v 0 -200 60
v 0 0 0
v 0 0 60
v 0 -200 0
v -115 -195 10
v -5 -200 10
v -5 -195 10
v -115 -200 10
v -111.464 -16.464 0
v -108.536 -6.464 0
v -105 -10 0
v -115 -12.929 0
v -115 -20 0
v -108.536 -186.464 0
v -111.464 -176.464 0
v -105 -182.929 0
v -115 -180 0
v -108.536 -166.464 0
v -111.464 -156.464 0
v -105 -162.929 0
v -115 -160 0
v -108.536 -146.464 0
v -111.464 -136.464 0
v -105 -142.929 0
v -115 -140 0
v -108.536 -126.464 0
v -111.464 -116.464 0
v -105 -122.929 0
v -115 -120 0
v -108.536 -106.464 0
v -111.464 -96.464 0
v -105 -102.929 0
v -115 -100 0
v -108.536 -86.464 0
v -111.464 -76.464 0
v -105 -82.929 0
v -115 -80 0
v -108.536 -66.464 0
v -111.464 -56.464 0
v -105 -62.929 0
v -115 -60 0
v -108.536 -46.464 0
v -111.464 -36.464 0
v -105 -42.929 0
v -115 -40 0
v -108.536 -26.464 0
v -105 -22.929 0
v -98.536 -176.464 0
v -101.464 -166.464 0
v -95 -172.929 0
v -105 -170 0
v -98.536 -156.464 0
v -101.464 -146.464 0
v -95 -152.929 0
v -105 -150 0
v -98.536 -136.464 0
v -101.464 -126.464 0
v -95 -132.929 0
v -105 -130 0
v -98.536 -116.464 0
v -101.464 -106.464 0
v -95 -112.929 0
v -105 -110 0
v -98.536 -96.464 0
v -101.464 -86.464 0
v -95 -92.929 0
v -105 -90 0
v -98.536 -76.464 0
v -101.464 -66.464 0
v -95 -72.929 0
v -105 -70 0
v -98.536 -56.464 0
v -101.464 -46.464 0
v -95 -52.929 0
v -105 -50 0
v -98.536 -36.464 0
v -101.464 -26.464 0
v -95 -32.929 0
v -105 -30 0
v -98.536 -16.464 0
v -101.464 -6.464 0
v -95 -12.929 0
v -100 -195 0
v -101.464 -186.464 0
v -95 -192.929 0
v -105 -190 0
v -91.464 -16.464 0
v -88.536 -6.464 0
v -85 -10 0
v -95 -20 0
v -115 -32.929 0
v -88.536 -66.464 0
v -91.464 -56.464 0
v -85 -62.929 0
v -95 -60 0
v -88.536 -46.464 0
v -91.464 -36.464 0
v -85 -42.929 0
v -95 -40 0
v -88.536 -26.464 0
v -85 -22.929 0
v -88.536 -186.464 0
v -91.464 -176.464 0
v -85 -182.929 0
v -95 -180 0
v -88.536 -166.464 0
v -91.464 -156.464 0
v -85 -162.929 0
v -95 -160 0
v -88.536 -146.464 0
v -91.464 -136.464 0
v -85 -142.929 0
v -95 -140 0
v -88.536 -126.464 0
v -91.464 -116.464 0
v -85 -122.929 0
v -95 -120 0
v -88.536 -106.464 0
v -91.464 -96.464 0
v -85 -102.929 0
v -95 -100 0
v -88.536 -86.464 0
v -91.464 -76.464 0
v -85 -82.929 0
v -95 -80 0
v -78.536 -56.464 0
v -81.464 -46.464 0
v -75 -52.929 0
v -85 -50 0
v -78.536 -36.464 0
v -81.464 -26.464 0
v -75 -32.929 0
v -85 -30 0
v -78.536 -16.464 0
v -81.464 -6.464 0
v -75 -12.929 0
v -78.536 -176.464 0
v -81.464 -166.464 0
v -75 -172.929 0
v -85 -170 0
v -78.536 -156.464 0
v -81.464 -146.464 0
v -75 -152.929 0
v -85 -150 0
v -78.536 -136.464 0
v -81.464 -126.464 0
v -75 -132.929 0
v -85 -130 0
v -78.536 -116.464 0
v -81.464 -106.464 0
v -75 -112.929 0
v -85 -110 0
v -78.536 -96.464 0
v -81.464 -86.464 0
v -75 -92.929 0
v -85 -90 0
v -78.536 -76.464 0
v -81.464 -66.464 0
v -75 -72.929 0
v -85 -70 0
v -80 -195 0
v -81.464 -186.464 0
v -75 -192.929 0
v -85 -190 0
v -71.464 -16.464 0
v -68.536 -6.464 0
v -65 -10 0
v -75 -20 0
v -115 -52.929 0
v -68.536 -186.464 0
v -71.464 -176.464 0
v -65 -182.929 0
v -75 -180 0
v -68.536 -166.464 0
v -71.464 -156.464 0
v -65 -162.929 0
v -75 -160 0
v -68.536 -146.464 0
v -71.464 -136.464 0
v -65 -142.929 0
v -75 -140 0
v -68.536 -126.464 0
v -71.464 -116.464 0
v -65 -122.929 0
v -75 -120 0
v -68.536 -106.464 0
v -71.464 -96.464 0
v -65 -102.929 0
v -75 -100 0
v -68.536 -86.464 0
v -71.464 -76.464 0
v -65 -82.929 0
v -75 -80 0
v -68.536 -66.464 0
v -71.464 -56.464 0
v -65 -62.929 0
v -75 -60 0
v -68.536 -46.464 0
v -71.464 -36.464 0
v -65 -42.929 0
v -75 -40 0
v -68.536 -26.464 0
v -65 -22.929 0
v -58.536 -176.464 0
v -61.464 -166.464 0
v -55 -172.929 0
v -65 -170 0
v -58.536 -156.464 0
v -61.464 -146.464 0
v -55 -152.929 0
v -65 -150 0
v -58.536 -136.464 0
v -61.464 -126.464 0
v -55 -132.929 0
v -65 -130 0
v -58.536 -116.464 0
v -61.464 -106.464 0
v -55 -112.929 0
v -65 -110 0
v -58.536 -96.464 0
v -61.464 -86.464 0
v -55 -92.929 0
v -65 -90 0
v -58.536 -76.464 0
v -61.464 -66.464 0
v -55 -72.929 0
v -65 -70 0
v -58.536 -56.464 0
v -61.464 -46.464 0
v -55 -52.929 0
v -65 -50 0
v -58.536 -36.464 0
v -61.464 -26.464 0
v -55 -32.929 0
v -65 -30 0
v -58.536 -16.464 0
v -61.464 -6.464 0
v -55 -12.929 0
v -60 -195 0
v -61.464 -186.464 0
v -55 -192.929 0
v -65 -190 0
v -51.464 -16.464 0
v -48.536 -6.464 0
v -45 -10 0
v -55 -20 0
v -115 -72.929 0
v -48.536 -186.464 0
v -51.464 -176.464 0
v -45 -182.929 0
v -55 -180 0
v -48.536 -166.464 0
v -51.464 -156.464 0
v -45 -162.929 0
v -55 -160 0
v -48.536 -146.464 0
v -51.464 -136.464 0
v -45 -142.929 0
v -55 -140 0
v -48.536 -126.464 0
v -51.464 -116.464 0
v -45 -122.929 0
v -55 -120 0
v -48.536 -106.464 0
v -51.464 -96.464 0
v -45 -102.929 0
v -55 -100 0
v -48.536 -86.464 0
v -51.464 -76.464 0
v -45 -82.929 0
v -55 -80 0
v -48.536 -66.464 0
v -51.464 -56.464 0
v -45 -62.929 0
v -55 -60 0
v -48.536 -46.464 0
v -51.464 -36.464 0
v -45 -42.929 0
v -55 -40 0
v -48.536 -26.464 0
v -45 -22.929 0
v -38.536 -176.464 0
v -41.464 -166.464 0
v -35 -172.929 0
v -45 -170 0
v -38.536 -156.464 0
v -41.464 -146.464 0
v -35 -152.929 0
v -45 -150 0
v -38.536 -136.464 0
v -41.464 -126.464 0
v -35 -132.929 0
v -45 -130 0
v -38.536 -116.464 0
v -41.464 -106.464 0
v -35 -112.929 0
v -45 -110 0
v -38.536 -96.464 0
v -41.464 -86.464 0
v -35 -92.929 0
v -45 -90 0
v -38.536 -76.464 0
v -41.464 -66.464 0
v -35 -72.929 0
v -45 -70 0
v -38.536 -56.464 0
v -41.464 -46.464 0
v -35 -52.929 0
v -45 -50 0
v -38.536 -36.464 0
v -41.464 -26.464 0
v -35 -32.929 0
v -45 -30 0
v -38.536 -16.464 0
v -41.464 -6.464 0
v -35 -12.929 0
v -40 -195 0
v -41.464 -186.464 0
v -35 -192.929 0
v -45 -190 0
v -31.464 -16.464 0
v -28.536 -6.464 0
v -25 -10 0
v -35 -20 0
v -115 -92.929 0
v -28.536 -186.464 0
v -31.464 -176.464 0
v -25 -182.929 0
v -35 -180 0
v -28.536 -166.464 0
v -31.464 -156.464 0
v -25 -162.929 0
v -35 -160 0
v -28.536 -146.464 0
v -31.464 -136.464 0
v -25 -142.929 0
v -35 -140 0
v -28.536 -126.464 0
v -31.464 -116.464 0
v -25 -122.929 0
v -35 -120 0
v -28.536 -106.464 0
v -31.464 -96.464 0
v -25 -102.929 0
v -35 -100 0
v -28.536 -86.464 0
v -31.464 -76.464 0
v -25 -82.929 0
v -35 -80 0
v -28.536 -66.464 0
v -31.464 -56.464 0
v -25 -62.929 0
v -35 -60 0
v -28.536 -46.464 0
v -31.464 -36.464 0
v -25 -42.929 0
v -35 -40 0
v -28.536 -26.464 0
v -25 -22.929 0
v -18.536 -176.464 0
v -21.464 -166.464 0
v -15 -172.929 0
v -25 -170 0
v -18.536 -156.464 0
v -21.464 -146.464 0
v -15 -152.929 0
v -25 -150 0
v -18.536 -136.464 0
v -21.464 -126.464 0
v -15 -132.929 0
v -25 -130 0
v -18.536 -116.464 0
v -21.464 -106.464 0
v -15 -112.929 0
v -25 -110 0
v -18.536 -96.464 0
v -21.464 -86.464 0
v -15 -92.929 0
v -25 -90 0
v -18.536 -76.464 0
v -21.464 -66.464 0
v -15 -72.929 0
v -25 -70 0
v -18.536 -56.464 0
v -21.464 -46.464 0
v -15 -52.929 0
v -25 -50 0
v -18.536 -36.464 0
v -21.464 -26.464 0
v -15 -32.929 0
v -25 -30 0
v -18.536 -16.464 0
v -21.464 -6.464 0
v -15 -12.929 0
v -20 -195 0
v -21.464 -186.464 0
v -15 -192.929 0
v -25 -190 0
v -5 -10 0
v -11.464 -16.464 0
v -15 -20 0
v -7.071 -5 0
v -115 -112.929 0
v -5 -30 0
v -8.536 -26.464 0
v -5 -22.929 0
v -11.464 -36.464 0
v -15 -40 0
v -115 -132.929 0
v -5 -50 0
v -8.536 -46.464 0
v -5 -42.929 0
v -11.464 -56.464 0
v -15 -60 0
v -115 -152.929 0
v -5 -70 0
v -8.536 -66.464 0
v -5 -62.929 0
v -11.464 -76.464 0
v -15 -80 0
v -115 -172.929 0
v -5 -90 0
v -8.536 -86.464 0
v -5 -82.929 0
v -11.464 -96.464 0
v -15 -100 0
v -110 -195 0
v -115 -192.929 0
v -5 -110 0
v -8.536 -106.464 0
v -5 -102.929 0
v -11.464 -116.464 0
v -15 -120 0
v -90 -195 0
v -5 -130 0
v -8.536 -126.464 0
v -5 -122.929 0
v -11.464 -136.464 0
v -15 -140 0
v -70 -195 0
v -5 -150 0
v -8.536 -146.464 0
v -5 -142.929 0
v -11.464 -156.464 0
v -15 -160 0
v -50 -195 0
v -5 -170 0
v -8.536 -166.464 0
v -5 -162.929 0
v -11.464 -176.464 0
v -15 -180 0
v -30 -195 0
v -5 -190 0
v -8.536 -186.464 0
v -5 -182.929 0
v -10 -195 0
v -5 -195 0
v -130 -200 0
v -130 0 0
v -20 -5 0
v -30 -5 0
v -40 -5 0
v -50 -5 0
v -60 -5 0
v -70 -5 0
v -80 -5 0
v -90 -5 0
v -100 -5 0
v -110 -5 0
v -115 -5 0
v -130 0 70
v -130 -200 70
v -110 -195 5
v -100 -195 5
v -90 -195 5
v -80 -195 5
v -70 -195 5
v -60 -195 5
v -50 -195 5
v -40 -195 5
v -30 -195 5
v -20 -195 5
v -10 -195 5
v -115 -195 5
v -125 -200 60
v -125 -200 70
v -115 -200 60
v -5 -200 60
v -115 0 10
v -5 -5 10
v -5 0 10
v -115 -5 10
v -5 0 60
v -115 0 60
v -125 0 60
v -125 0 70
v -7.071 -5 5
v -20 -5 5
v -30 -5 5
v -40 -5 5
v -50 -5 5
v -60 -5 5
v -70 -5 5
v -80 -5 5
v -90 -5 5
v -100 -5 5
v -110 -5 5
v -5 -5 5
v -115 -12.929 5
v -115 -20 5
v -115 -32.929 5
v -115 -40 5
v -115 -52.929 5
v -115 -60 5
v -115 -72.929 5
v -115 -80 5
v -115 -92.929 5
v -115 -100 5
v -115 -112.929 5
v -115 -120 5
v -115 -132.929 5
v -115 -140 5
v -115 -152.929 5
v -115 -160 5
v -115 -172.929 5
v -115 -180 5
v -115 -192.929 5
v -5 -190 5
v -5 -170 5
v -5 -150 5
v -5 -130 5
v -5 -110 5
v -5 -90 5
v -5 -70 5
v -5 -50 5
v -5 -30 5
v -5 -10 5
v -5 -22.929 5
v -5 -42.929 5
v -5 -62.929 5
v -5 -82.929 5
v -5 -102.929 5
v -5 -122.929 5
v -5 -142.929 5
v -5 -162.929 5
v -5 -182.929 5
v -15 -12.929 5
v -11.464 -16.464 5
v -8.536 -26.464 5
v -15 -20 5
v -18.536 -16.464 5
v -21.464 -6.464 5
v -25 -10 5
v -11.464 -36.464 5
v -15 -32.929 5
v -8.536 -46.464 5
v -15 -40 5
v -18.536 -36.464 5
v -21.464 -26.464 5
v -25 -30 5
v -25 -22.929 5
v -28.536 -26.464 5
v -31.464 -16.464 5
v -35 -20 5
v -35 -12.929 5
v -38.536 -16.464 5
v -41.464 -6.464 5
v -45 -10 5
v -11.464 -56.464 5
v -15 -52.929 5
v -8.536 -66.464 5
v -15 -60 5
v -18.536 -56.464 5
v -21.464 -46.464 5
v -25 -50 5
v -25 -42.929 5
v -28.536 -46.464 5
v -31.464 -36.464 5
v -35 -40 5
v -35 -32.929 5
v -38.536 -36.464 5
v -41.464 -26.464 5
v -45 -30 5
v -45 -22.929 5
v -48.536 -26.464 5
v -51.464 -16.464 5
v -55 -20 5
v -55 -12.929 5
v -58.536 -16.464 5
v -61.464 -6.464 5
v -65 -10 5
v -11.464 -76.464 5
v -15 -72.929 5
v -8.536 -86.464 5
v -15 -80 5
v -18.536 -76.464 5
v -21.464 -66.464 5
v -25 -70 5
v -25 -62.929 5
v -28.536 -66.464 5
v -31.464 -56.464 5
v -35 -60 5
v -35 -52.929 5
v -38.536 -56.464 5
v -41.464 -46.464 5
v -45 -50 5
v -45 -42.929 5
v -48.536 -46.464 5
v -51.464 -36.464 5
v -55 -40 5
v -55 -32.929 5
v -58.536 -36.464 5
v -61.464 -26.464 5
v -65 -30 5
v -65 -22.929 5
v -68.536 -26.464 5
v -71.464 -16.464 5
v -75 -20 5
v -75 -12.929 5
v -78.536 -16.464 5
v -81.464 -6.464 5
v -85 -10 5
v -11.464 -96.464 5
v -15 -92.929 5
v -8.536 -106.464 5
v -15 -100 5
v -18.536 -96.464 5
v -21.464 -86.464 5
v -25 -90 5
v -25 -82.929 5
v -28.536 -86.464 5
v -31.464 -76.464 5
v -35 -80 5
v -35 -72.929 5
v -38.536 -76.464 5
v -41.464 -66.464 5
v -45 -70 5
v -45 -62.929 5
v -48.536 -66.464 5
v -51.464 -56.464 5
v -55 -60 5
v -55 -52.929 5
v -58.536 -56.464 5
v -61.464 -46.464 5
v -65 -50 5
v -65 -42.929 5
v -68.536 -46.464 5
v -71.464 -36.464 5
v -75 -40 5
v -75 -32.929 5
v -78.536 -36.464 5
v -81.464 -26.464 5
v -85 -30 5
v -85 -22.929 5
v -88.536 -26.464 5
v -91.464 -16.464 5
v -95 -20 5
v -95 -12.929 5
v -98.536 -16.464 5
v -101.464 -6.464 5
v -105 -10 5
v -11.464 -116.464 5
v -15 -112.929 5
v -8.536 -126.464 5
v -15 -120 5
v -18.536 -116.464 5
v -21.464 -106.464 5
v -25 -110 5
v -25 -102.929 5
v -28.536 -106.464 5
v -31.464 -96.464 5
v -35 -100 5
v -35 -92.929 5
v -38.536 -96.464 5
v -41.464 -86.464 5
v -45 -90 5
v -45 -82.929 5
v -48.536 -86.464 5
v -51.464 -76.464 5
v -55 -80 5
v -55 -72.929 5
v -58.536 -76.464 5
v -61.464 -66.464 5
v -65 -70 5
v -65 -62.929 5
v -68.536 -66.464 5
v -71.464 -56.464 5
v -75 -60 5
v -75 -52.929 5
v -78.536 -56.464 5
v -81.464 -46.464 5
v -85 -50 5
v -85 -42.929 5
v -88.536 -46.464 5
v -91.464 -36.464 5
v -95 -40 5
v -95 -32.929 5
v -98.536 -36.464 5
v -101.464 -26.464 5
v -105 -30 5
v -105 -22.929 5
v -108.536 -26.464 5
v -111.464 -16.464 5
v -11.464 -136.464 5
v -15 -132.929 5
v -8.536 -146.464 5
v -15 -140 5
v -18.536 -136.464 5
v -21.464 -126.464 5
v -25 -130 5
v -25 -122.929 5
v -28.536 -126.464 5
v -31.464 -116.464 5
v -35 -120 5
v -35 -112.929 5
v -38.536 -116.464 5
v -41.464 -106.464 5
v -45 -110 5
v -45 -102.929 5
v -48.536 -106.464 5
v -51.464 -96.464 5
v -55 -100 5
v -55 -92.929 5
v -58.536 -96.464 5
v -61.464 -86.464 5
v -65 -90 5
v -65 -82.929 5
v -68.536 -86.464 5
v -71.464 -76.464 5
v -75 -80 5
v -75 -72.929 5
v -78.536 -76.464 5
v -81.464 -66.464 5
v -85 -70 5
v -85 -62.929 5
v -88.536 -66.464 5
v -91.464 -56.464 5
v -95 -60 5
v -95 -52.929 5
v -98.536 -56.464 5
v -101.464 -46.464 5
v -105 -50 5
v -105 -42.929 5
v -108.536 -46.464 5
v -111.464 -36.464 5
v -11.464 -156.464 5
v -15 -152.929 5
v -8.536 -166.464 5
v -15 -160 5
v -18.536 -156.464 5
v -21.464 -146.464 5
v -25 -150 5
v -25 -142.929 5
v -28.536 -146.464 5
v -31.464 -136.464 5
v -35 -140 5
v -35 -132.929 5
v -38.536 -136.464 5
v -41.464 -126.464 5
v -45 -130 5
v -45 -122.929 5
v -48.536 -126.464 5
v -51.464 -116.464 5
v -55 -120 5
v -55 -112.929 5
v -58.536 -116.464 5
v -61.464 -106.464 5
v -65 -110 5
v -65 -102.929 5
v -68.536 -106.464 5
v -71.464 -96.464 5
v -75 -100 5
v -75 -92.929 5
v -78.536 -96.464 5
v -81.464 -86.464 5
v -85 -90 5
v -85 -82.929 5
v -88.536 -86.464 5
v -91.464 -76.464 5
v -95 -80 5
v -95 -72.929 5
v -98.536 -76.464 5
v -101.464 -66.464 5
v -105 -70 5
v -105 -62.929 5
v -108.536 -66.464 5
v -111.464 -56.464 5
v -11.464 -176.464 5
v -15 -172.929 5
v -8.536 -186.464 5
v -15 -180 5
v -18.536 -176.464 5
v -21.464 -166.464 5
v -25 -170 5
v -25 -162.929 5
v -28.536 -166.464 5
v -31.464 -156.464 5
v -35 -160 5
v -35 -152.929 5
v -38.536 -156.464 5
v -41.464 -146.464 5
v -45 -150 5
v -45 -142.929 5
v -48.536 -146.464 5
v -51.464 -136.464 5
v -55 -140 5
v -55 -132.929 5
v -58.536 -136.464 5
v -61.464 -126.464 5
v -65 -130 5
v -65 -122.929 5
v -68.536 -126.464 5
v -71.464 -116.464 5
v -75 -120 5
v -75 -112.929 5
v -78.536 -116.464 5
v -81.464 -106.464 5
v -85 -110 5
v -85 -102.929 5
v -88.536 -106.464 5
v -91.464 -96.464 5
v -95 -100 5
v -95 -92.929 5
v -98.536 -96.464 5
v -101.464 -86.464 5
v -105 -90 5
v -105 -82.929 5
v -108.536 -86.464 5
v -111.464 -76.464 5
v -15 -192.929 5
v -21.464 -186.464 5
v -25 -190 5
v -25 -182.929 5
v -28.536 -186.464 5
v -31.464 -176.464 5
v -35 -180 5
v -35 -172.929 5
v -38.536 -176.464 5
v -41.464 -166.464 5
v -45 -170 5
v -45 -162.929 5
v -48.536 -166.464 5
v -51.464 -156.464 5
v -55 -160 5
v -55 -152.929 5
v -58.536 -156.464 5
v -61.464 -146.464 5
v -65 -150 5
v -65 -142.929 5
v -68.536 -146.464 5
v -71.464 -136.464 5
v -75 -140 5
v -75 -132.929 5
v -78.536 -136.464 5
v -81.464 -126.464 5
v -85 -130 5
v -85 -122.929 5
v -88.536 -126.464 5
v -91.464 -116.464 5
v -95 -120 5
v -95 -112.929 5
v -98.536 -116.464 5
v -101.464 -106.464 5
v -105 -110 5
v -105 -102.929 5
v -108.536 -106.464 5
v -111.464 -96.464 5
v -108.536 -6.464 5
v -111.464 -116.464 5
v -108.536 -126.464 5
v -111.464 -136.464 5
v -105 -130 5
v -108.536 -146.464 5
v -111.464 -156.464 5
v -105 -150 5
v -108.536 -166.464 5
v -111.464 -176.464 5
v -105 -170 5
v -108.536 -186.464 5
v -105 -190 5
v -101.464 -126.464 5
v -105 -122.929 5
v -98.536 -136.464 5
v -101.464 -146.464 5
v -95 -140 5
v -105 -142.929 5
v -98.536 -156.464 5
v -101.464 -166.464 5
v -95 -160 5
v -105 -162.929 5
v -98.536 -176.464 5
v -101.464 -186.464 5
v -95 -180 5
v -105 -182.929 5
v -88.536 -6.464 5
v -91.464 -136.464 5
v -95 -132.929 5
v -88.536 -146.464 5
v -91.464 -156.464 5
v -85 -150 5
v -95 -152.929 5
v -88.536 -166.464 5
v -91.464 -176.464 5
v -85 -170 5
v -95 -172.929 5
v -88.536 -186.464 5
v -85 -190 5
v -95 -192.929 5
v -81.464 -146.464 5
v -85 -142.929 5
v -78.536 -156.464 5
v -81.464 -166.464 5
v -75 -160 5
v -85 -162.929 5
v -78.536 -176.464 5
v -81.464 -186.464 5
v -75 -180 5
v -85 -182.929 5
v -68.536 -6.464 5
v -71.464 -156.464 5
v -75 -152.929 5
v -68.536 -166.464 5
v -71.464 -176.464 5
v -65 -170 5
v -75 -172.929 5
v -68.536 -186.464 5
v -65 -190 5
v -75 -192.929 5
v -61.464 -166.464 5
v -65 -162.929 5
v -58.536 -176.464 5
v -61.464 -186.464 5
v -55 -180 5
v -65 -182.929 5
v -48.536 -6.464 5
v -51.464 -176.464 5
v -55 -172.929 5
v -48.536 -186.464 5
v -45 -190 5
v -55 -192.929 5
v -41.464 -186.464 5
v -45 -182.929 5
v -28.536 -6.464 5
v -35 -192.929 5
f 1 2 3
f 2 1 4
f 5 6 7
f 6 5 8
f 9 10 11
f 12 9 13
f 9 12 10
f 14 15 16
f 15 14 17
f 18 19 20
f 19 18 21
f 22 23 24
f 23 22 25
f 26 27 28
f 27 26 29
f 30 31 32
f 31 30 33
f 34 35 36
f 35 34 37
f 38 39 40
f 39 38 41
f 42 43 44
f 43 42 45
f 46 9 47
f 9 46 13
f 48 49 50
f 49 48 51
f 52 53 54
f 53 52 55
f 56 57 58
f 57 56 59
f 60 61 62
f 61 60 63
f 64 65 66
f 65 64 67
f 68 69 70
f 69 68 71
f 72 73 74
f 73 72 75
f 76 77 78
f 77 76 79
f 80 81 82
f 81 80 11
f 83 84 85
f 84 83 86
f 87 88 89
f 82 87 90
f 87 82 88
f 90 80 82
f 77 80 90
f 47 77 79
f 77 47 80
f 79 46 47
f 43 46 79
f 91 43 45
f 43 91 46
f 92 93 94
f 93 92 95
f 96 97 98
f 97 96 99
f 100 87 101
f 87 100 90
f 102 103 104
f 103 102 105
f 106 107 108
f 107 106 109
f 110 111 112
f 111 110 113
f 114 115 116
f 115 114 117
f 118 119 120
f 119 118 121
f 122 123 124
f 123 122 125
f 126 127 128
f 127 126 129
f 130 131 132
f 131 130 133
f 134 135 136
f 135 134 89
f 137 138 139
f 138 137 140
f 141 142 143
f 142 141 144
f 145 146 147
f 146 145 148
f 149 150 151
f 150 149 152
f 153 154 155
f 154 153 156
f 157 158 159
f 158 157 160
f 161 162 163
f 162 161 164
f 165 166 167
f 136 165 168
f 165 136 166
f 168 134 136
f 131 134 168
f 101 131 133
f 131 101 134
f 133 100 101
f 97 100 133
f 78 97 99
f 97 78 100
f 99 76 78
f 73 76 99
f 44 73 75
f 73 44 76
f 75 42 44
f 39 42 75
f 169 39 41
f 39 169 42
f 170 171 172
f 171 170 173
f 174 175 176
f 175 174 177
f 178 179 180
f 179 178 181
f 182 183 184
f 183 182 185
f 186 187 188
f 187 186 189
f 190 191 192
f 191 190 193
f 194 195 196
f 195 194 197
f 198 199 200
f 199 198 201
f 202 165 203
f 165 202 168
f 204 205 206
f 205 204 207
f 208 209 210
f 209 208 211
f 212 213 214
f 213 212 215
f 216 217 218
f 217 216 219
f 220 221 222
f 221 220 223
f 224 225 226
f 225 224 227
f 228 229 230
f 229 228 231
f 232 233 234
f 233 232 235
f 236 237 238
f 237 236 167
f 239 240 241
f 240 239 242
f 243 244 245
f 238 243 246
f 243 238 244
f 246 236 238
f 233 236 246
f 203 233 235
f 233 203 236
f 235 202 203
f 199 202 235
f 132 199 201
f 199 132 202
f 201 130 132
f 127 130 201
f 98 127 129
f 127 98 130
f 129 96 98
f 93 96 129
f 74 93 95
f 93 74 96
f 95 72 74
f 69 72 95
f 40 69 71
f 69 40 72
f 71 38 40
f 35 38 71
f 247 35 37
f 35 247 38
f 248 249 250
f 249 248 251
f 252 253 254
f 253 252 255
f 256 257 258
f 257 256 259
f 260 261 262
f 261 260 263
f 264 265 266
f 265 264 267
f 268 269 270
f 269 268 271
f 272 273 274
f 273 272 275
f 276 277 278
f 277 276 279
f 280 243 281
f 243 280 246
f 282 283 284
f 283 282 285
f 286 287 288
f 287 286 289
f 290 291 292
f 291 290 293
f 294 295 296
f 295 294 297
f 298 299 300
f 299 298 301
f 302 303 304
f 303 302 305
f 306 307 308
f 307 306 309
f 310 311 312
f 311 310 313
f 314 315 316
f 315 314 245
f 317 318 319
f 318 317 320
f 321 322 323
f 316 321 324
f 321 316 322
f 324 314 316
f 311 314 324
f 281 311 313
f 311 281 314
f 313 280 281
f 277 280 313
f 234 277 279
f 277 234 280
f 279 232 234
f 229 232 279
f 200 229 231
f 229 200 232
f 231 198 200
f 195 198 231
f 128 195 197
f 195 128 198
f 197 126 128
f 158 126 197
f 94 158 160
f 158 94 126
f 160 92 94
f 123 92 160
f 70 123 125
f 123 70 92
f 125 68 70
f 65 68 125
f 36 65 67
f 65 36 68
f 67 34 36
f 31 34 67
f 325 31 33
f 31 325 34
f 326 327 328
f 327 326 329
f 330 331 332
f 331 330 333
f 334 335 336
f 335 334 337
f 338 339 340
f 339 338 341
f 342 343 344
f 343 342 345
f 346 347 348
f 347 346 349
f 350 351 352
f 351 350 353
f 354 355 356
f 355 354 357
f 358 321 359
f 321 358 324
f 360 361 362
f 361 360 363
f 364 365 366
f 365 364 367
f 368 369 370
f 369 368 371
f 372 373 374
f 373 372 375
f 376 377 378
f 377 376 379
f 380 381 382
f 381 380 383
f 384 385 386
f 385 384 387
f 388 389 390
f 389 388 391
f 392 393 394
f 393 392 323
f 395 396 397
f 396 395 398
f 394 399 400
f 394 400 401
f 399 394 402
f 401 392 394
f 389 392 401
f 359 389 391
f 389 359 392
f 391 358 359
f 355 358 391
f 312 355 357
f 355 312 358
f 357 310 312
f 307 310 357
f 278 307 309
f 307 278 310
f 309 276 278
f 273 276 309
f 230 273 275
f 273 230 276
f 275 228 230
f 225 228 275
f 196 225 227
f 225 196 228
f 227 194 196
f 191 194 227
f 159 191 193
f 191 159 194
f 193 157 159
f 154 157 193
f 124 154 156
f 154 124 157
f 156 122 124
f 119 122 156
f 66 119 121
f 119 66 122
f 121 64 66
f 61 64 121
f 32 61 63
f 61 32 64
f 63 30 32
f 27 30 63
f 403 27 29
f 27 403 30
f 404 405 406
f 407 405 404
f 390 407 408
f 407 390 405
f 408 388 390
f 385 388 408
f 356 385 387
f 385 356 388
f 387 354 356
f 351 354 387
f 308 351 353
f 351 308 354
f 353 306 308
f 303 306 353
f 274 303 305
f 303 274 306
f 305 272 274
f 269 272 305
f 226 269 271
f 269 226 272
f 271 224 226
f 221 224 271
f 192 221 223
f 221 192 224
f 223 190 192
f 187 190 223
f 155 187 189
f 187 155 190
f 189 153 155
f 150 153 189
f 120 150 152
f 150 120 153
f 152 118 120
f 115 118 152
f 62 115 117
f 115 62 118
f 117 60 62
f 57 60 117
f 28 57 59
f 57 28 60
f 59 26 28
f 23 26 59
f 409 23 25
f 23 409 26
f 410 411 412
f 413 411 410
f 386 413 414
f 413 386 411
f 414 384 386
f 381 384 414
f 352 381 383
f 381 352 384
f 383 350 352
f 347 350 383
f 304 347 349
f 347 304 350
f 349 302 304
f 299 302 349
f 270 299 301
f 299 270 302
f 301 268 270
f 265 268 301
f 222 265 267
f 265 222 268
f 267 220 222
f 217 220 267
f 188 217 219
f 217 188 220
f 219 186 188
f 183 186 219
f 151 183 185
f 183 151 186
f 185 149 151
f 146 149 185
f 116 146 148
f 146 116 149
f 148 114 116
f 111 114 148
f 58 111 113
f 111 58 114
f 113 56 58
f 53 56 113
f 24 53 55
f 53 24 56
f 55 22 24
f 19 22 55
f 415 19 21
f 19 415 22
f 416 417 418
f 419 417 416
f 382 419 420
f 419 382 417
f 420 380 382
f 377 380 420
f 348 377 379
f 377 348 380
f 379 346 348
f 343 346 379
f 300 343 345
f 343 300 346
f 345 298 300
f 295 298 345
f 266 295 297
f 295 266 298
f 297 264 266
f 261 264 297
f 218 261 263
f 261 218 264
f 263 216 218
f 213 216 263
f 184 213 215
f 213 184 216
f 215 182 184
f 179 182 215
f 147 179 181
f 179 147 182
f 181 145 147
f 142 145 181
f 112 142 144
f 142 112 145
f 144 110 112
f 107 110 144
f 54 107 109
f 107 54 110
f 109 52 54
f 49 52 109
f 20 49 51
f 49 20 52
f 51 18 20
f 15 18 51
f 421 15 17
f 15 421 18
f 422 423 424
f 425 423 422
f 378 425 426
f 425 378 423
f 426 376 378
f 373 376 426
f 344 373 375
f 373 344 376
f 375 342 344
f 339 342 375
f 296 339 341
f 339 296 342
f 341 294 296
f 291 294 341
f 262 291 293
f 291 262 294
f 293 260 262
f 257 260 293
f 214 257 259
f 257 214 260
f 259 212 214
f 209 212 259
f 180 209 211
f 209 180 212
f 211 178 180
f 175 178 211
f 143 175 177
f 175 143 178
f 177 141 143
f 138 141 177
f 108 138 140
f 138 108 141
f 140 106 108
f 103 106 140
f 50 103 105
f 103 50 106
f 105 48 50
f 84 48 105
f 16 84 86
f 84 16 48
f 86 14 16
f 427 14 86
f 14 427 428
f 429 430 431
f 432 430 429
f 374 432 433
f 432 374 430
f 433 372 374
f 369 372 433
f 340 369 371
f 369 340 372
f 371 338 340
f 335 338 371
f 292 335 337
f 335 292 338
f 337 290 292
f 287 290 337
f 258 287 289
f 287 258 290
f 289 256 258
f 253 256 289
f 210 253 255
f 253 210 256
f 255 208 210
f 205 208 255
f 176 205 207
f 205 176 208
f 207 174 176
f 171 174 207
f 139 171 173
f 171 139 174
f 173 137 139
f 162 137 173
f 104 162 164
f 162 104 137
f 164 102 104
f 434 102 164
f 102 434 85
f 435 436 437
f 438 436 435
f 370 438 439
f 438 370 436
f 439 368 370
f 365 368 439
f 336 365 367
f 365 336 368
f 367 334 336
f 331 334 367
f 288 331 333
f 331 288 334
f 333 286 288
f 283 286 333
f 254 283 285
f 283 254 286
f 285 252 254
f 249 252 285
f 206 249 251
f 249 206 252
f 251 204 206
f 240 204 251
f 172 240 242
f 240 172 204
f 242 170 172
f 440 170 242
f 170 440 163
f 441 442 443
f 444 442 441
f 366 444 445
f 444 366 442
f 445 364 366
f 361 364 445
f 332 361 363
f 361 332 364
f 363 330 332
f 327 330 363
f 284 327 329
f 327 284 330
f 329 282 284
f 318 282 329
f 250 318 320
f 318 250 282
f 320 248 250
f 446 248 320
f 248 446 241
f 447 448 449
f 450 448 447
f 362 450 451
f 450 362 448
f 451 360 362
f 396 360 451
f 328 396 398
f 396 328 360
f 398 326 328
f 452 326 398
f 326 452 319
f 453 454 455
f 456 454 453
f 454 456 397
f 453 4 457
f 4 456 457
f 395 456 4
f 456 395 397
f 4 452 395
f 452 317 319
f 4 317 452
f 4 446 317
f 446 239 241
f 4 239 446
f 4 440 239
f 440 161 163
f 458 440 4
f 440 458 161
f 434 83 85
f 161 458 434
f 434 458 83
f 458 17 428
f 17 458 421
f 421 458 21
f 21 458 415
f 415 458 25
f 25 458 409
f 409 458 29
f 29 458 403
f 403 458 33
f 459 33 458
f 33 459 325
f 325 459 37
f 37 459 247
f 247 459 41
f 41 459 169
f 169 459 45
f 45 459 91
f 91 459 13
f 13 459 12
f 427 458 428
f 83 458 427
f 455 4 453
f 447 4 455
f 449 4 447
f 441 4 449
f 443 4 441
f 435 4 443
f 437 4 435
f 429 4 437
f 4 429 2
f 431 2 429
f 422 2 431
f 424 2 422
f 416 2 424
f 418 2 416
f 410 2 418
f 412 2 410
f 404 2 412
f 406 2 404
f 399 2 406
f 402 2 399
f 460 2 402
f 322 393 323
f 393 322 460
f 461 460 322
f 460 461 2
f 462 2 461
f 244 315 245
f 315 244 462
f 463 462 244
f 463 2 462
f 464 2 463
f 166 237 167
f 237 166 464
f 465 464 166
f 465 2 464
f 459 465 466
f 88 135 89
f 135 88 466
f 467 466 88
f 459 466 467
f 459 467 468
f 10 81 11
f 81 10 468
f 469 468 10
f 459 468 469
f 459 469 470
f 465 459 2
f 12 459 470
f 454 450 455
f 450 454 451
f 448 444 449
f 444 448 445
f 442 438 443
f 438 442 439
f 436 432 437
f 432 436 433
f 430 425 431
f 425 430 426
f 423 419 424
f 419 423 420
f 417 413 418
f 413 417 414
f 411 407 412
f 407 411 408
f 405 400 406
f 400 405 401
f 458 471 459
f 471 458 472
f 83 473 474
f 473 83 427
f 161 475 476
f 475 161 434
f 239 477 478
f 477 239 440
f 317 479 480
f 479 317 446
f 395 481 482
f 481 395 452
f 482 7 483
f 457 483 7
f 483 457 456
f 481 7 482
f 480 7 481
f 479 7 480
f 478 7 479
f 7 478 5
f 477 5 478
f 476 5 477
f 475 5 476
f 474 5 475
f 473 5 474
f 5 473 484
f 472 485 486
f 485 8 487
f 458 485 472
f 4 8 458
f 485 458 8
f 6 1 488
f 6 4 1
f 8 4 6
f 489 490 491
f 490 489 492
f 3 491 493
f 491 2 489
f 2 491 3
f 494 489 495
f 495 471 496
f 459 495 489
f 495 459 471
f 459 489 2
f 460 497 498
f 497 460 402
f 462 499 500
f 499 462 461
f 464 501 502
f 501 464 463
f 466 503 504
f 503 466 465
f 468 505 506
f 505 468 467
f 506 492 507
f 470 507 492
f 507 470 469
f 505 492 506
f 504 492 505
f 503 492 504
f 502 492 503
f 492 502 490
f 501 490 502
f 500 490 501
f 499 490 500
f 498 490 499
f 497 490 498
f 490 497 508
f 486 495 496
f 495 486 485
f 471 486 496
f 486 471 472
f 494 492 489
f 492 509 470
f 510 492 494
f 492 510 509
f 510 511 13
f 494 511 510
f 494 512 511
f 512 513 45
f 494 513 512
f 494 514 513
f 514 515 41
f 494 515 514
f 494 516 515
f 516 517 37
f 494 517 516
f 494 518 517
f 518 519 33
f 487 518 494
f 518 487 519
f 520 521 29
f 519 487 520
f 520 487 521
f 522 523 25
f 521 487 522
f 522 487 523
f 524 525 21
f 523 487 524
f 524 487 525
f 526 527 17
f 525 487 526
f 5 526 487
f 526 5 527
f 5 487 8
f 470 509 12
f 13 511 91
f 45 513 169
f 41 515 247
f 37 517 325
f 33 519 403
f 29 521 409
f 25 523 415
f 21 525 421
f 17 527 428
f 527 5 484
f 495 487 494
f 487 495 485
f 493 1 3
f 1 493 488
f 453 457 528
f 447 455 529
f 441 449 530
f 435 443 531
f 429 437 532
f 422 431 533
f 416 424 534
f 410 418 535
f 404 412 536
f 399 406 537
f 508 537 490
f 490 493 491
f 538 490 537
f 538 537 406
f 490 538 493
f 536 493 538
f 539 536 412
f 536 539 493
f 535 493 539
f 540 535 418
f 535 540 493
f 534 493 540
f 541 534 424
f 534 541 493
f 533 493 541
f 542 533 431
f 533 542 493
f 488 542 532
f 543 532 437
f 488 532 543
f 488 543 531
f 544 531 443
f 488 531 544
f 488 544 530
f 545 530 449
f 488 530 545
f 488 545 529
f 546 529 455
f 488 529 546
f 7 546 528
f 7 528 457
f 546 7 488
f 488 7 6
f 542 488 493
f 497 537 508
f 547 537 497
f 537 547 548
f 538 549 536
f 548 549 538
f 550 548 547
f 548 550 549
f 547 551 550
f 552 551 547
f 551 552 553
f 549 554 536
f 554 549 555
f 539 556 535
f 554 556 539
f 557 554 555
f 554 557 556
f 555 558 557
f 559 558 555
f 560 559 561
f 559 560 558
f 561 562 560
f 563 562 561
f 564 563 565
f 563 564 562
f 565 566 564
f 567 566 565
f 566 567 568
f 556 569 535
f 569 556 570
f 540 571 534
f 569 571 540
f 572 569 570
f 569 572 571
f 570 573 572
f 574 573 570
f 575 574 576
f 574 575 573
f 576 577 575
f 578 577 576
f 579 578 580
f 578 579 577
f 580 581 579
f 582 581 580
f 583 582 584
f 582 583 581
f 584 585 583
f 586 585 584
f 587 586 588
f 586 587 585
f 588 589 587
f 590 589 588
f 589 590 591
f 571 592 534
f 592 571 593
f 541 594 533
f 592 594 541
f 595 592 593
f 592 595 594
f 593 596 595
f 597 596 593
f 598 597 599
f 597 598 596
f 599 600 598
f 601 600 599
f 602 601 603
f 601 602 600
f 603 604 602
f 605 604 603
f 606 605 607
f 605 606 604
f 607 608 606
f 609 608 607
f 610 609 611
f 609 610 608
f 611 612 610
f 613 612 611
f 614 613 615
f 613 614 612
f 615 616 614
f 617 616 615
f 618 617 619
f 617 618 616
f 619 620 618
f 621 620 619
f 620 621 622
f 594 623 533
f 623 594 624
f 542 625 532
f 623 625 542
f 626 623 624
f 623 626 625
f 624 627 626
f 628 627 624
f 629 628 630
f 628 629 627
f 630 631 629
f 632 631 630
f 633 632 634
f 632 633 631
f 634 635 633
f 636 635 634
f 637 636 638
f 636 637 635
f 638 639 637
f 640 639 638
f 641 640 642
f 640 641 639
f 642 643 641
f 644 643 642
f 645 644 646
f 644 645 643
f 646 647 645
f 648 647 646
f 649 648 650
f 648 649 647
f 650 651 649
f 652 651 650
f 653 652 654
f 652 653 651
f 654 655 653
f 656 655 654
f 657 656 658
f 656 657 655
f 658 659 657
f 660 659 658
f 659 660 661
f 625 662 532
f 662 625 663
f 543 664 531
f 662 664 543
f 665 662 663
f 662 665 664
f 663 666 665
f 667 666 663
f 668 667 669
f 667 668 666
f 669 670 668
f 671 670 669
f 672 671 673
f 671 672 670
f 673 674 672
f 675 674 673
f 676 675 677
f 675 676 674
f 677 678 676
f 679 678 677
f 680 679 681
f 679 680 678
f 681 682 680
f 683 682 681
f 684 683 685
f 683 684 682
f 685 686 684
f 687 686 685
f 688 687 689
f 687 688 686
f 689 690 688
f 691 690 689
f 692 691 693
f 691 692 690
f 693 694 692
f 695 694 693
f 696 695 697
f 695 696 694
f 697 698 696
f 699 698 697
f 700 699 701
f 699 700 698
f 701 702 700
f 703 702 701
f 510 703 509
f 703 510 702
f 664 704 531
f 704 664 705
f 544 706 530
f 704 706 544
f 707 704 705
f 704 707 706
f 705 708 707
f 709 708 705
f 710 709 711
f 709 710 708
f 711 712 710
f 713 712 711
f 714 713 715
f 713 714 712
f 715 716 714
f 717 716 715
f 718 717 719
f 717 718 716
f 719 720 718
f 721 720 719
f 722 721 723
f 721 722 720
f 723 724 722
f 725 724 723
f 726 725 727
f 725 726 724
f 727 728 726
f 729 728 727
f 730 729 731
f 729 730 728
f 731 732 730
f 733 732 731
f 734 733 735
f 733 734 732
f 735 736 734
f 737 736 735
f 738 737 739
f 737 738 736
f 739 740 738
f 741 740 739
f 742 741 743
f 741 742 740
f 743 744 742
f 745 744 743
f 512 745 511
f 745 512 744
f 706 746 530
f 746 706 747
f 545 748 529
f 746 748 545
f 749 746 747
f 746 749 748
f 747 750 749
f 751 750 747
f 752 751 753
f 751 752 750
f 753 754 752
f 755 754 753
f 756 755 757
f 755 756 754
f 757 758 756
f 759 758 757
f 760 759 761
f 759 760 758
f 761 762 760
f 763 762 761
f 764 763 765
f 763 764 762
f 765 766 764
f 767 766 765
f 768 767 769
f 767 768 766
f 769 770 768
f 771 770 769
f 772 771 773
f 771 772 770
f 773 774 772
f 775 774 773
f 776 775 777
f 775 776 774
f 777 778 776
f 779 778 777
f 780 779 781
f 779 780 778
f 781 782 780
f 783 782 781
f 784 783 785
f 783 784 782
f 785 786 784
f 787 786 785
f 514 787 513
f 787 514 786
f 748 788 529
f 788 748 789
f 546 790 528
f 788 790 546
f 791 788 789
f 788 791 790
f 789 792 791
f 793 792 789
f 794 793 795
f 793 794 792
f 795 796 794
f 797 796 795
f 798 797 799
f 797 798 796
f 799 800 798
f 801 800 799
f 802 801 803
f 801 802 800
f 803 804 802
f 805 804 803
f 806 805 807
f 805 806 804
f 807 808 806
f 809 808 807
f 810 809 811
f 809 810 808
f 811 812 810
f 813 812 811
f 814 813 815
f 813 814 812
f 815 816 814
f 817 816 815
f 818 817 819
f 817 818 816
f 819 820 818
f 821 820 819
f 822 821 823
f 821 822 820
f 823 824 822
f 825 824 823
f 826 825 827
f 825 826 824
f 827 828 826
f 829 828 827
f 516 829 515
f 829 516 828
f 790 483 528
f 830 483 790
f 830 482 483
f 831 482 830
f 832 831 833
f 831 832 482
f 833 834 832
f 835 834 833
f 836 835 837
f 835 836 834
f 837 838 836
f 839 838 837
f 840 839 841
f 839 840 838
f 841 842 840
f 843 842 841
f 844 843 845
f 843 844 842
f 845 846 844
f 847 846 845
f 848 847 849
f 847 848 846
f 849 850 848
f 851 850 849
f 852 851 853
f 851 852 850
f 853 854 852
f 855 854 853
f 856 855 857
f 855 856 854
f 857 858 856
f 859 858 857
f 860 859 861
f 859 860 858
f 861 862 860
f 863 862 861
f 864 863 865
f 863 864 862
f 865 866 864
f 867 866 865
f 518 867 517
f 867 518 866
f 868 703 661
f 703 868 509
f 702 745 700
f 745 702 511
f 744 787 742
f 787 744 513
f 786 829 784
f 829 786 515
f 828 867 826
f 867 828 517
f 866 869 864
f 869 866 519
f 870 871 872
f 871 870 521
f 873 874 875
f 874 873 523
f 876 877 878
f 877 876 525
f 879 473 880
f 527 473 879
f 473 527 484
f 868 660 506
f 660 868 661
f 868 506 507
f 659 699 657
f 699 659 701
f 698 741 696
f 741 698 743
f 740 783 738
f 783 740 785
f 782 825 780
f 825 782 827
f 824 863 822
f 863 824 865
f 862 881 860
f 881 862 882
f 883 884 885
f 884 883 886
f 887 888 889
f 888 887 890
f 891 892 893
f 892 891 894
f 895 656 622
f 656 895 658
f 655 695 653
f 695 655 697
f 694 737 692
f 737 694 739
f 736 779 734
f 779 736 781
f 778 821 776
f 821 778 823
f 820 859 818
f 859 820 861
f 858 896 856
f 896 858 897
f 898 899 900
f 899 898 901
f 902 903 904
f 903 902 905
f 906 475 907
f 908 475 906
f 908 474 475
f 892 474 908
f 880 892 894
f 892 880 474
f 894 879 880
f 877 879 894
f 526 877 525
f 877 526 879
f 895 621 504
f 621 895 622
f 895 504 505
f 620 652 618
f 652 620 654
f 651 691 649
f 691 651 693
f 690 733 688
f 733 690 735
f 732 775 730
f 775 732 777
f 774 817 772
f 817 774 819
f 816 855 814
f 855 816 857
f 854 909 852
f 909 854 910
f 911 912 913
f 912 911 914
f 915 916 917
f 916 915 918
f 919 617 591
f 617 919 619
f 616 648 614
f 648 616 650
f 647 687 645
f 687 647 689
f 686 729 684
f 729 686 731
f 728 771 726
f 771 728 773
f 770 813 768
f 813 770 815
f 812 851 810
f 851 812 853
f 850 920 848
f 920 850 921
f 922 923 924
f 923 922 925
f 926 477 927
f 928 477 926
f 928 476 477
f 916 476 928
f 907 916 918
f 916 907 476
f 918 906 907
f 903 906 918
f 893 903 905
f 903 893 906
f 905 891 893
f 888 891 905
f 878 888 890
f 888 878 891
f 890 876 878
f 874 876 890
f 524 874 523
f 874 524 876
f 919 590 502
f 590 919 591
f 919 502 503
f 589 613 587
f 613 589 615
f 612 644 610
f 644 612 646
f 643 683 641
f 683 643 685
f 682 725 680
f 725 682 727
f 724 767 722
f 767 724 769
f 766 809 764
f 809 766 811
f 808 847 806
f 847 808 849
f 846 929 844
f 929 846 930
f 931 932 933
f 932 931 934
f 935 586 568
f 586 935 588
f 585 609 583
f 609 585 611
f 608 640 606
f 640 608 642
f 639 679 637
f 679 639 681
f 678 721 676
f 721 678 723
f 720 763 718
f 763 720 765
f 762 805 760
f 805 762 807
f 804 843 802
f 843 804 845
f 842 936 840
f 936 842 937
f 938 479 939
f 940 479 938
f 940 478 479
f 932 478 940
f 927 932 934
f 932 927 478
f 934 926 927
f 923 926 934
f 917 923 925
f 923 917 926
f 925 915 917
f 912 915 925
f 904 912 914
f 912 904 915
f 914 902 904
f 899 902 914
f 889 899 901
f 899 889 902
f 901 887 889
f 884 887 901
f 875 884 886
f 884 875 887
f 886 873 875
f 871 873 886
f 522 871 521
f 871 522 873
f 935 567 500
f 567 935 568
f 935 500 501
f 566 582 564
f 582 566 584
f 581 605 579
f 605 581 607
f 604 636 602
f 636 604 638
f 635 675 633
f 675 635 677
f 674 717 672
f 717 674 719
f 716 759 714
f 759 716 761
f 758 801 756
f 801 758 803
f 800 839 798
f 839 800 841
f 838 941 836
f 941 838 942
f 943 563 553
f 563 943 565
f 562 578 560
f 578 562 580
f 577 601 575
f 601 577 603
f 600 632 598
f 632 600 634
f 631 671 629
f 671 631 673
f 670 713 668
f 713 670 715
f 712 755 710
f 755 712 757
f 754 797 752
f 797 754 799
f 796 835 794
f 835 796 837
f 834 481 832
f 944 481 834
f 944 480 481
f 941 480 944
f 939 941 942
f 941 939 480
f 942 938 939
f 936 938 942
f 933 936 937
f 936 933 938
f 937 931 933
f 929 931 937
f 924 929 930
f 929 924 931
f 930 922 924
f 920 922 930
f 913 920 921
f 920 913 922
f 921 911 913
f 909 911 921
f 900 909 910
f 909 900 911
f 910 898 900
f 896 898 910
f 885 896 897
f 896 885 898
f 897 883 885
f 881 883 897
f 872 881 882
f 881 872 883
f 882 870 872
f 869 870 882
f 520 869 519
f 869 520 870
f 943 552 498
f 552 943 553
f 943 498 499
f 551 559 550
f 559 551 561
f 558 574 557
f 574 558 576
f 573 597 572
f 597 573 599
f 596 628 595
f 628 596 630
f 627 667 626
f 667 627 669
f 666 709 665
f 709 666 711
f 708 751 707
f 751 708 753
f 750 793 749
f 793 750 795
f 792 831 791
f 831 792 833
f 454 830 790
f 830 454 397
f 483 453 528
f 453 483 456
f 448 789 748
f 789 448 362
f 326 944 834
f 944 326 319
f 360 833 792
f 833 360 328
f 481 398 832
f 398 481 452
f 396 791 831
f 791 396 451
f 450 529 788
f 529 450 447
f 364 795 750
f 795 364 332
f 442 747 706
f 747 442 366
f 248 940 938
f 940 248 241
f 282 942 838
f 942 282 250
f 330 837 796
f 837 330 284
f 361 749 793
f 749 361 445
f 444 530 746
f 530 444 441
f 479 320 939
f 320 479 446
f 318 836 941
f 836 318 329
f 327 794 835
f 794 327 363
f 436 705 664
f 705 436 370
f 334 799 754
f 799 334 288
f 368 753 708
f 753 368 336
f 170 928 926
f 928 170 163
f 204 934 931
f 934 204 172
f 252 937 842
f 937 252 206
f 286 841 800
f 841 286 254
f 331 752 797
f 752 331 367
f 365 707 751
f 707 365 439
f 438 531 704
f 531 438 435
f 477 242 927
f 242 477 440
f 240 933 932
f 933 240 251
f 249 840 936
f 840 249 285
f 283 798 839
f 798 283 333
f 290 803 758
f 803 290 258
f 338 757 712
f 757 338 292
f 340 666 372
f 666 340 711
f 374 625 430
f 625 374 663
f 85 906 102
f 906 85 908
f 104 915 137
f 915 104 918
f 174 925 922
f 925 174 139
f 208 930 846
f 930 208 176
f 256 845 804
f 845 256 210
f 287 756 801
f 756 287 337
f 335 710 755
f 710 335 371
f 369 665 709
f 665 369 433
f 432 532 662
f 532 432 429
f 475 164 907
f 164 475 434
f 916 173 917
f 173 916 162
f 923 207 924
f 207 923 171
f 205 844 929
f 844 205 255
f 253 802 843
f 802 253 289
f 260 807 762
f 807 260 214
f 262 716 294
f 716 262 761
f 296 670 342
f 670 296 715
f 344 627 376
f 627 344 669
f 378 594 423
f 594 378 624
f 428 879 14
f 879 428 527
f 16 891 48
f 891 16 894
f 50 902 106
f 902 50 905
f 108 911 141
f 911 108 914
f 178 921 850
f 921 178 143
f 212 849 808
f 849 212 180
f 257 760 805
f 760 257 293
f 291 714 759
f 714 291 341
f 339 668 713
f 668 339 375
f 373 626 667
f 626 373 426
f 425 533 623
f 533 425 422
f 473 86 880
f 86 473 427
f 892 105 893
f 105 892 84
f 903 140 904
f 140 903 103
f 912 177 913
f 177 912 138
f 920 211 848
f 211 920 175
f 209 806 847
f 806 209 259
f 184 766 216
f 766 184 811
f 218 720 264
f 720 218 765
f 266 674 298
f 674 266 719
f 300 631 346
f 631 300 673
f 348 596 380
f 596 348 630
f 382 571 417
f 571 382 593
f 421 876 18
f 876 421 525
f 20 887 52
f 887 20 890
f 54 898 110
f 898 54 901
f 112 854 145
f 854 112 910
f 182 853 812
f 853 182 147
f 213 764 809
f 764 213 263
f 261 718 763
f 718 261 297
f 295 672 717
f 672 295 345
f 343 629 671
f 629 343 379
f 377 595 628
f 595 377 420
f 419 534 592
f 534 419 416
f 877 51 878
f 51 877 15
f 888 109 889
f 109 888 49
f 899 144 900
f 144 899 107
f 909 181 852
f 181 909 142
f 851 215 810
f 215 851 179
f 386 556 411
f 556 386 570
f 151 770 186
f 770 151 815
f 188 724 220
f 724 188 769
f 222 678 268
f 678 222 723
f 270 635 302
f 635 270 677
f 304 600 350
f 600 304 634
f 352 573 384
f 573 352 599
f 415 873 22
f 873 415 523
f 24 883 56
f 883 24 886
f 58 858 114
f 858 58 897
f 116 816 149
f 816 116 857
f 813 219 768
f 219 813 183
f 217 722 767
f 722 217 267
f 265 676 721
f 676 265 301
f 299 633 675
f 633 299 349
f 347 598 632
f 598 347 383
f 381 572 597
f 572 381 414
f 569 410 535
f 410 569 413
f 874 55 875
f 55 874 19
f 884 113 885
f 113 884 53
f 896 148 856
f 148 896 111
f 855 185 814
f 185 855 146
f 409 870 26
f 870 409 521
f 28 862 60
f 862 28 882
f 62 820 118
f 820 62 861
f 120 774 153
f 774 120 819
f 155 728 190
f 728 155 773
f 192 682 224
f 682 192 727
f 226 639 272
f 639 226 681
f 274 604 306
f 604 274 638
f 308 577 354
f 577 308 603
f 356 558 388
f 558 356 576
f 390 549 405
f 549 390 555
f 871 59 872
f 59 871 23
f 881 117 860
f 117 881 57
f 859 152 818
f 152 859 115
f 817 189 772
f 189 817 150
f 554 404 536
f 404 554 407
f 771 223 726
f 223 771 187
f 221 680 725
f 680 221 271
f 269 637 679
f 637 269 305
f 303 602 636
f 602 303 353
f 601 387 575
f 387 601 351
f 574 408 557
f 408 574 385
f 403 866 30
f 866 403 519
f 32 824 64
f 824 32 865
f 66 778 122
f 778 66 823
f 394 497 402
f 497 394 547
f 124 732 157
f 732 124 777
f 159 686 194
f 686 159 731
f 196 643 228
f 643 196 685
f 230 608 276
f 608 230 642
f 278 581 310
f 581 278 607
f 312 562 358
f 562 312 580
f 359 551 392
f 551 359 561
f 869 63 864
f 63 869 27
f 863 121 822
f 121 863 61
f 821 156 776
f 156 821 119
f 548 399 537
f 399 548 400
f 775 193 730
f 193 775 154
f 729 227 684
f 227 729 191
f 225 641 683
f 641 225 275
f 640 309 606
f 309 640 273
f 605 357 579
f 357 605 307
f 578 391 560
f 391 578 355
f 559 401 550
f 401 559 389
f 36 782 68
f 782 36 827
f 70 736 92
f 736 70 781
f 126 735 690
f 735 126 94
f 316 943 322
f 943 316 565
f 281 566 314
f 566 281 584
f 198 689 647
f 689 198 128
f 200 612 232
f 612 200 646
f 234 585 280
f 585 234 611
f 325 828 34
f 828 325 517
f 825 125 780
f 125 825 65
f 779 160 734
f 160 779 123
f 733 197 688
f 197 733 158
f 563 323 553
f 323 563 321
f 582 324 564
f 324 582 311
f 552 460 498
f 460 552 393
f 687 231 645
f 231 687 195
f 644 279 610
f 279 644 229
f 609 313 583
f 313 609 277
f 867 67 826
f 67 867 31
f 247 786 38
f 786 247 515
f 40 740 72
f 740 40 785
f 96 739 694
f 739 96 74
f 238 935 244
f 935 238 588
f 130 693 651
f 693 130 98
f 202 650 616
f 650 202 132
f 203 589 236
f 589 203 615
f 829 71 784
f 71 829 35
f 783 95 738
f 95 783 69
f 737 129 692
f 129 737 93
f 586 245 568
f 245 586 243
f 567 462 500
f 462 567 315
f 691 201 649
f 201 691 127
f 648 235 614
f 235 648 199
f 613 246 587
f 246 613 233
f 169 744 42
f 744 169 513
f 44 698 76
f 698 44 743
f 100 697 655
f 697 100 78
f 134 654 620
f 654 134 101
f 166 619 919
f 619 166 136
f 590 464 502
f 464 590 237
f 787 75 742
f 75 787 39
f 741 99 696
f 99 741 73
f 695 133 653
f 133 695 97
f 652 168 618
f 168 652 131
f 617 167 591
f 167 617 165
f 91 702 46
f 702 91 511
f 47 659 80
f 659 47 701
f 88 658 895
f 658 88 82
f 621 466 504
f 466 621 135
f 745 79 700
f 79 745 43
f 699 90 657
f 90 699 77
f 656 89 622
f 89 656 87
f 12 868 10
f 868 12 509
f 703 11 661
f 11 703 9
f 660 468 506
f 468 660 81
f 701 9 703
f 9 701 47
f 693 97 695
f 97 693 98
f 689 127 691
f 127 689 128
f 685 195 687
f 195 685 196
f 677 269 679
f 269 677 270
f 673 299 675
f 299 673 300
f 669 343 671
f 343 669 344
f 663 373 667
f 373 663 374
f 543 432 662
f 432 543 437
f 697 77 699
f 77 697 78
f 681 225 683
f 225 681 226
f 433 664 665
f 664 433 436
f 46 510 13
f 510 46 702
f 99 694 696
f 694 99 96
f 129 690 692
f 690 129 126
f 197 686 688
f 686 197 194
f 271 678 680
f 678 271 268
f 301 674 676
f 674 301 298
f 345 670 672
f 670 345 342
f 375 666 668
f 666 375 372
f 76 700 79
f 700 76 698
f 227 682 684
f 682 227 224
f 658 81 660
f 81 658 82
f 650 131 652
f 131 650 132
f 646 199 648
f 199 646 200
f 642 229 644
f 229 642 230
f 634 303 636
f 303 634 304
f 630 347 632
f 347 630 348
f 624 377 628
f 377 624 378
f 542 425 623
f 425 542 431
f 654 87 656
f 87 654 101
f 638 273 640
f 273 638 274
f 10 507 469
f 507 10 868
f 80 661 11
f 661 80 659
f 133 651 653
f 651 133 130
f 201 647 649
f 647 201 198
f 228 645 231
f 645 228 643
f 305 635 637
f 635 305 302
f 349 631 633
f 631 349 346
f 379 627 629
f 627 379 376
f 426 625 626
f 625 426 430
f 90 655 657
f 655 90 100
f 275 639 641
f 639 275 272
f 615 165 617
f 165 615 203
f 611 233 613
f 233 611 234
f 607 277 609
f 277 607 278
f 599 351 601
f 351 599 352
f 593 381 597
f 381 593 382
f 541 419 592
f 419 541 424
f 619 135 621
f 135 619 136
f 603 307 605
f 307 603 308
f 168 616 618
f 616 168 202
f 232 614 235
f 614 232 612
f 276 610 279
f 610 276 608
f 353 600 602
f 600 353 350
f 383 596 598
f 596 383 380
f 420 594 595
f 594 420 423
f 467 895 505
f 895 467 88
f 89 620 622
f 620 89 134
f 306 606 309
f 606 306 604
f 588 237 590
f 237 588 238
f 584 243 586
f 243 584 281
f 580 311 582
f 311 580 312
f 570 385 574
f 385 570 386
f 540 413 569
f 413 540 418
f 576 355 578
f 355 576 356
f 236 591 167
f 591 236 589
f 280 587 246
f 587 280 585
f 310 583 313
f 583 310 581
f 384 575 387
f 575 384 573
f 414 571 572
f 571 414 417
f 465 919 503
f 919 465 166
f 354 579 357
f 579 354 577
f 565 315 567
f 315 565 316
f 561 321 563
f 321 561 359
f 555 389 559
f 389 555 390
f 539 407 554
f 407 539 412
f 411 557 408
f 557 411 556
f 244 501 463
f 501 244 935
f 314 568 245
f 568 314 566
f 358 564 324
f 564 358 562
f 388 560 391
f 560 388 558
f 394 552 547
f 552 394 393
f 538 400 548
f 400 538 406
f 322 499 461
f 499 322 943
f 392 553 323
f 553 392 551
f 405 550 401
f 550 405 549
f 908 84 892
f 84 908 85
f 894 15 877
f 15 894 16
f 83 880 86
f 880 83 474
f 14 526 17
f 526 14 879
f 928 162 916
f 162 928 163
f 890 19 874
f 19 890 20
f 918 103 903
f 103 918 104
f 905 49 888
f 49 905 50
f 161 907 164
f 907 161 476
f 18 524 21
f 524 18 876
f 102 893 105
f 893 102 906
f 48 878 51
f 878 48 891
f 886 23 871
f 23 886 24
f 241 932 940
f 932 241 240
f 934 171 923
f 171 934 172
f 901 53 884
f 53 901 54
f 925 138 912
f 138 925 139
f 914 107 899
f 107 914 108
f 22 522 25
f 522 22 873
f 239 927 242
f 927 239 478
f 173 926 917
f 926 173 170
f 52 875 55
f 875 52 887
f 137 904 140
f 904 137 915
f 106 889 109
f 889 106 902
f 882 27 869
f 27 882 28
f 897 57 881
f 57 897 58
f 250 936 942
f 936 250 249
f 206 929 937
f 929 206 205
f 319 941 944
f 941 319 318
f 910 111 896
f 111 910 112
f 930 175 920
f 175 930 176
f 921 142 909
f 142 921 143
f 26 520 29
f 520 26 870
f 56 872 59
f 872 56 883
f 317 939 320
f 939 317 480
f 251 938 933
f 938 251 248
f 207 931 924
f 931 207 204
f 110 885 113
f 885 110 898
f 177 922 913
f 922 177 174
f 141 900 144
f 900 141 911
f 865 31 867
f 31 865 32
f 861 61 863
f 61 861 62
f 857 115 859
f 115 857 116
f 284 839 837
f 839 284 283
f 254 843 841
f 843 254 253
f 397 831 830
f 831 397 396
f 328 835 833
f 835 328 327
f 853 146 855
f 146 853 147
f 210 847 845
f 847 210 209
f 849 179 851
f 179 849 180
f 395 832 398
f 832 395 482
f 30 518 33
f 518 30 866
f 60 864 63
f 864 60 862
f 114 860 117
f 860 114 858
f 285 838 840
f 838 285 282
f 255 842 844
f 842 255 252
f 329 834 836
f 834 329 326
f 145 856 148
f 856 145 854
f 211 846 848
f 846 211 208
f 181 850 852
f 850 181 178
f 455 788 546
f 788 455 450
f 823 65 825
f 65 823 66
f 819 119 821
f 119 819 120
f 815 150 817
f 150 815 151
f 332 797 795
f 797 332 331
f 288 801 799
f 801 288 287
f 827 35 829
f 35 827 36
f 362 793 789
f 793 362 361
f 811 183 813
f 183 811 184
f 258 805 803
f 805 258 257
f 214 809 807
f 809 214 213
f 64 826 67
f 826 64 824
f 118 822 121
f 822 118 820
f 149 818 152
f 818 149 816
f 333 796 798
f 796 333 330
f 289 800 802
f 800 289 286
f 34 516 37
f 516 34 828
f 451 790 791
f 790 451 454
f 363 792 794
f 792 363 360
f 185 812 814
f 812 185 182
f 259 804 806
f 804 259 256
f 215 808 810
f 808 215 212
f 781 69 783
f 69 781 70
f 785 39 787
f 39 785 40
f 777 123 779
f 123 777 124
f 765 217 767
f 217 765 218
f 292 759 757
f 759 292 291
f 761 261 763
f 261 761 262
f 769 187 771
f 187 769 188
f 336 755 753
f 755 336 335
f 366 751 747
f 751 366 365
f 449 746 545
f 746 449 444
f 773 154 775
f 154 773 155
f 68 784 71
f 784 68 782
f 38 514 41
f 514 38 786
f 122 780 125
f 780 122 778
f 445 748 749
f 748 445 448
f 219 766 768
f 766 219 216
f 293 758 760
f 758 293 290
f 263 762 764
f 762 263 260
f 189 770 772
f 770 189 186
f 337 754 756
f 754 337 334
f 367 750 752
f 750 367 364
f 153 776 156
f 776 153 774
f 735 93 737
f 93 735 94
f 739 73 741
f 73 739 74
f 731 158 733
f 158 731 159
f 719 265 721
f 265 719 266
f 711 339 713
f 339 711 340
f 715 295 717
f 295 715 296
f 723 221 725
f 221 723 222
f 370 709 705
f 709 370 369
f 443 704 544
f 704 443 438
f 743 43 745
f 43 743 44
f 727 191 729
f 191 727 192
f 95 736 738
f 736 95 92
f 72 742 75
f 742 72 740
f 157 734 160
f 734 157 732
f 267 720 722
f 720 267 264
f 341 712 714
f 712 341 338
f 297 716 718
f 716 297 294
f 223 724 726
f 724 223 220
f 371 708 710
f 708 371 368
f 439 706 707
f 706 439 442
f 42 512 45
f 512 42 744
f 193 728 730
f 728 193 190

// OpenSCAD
depth = 200;

difference() {
    mainStructure();
    cutOff();
}

module mainStructure() {
    union() {
        translate([-130, -depth, 0])
            union() {
                cube([130, 5, 10]);
                translate([0, depth-5, 0])
                    cube([130, 5, 10]);
                cube([5, depth, 70]);
                translate([5, 0, 0])
                    cube([10, depth, 60]);
                translate([125, 0, 0])
                    cube([5, depth, 60]);
            }

        translate([-135, -320, 0])
            rotate(a=[0,0,45]) {
                cube([190, 5, 5]);
            }

        translate([-135, -300, 0])
            rotate(a=[0,0,45]) {
                cube([190, 5, 5]);
            }

        translate([-135, -280, 0])
            rotate(a=[0,0,45]) {
                cube([190, 5, 5]);
            }
        
        translate([-135, -260, 0])
            rotate(a=[0,0,45]) {
                cube([190, 5, 5]);
            }
        
        translate([-135, -240, 0])
            rotate(a=[0,0,45]) {
                cube([190, 5, 5]);
            }
        
        translate([-135, -220, 0])
            rotate(a=[0,0,45]) {
                cube([190, 5, 5]);
            }
        
        
    translate([-135, -200, 0])
            rotate(a=[0,0,45]) {
                cube([190, 5, 5]);
            }
        
    translate([-135, -180, 0])
            rotate(a=[0,0,45]) {
                cube([190, 5, 5]);
            }
        
    translate([-135, -160, 0])
            rotate(a=[0,0,45]) {
                cube([190, 5, 5]);
            }
        
        translate([-135, -140, 0])
            rotate(a=[0,0,45]) {
                cube([190, 5, 5]);
            }
        
        translate([-135, -120, 0])
            rotate(a=[0,0,45]) {
                cube([190, 5, 5]);
            }
        
        translate([-135, -100, 0])
            rotate(a=[0,0,45]) {
                cube([190, 5, 5]);
            }
        
        translate([-135, -80, 0])
            rotate(a=[0,0,45]) {
                cube([190, 5, 5]);
            }
        
        translate([-135, -60, 0])
            rotate(a=[0,0,45]) {
                cube([190, 5, 5]);
            }
        
        translate([-135, -40, 0])
            rotate(a=[0,0,45]) {
                cube([190, 5, 5]);
            }
        
        translate([-135, -20, 0])
            rotate(a=[0,0,45]) {
                cube([190, 5, 5]);
            }

        translate([-135, 0, 0])
            rotate(a=[0,0,-45]) {
                cube([190, 5, 5]);
            }

        translate([-135, 20, 0])
            rotate(a=[0,0,-45]) {
                cube([190, 5, 5]);
            }

        translate([-135, 40, 0])
            rotate(a=[0,0,-45]) {
                cube([190, 5, 5]);
            }
        
        translate([-135, 60, 0])
            rotate(a=[0,0,-45]) {
                cube([190, 5, 5]);
            }
        
        translate([-135, 80, 0])
            rotate(a=[0,0,-45]) {
                cube([190, 5, 5]);
            }
        
        translate([-135, 100, 0])
            rotate(a=[0,0,-45]) {
                cube([190, 5, 5]);
            }
        
        translate([-135, -200, 0])
            rotate(a=[0,0,-45]) {
                cube([190, 5, 5]);
            }
        
        translate([-135, -180, 0])
            rotate(a=[0,0,-45]) {
                cube([190, 5, 5]);
            }
        
        translate([-135, -160, 0])
            rotate(a=[0,0,-45]) {
                cube([190, 5, 5]);
            }
        
        translate([-135, -140, 0])
            rotate(a=[0,0,-45]) {
                cube([190, 5, 5]);
            }
        
        translate([-135, -120, 0])
            rotate(a=[0,0,-45]) {
                cube([190, 5, 5]);
            }
        
        translate([-135, -100, 0])
            rotate(a=[0,0,-45]) {
                cube([190, 5, 5]);
            }
        
        translate([-135, -80, 0])
            rotate(a=[0,0,-45]) {
                cube([190, 5, 5]);
            }
        
        translate([-135, -60, 0])
            rotate(a=[0,0,-45]) {
                cube([190, 5, 5]);
            }
        
        translate([-135, -40, 0])
            rotate(a=[0,0,-45]) {
                cube([190, 5, 5]);
            }
        
        translate([-135, -20, 0])
            rotate(a=[0,0,-45]) {
                cube([190, 5, 5]);
            }
    }
}

module cutOff() {
    translate([-150, -depth*2, 0])
        difference() {
            translate([0, 0, -5])
                cube([160, depth*3, 75]);
            translate([20, 200, -10])
                cube([130, depth, 100]);
        }
}
